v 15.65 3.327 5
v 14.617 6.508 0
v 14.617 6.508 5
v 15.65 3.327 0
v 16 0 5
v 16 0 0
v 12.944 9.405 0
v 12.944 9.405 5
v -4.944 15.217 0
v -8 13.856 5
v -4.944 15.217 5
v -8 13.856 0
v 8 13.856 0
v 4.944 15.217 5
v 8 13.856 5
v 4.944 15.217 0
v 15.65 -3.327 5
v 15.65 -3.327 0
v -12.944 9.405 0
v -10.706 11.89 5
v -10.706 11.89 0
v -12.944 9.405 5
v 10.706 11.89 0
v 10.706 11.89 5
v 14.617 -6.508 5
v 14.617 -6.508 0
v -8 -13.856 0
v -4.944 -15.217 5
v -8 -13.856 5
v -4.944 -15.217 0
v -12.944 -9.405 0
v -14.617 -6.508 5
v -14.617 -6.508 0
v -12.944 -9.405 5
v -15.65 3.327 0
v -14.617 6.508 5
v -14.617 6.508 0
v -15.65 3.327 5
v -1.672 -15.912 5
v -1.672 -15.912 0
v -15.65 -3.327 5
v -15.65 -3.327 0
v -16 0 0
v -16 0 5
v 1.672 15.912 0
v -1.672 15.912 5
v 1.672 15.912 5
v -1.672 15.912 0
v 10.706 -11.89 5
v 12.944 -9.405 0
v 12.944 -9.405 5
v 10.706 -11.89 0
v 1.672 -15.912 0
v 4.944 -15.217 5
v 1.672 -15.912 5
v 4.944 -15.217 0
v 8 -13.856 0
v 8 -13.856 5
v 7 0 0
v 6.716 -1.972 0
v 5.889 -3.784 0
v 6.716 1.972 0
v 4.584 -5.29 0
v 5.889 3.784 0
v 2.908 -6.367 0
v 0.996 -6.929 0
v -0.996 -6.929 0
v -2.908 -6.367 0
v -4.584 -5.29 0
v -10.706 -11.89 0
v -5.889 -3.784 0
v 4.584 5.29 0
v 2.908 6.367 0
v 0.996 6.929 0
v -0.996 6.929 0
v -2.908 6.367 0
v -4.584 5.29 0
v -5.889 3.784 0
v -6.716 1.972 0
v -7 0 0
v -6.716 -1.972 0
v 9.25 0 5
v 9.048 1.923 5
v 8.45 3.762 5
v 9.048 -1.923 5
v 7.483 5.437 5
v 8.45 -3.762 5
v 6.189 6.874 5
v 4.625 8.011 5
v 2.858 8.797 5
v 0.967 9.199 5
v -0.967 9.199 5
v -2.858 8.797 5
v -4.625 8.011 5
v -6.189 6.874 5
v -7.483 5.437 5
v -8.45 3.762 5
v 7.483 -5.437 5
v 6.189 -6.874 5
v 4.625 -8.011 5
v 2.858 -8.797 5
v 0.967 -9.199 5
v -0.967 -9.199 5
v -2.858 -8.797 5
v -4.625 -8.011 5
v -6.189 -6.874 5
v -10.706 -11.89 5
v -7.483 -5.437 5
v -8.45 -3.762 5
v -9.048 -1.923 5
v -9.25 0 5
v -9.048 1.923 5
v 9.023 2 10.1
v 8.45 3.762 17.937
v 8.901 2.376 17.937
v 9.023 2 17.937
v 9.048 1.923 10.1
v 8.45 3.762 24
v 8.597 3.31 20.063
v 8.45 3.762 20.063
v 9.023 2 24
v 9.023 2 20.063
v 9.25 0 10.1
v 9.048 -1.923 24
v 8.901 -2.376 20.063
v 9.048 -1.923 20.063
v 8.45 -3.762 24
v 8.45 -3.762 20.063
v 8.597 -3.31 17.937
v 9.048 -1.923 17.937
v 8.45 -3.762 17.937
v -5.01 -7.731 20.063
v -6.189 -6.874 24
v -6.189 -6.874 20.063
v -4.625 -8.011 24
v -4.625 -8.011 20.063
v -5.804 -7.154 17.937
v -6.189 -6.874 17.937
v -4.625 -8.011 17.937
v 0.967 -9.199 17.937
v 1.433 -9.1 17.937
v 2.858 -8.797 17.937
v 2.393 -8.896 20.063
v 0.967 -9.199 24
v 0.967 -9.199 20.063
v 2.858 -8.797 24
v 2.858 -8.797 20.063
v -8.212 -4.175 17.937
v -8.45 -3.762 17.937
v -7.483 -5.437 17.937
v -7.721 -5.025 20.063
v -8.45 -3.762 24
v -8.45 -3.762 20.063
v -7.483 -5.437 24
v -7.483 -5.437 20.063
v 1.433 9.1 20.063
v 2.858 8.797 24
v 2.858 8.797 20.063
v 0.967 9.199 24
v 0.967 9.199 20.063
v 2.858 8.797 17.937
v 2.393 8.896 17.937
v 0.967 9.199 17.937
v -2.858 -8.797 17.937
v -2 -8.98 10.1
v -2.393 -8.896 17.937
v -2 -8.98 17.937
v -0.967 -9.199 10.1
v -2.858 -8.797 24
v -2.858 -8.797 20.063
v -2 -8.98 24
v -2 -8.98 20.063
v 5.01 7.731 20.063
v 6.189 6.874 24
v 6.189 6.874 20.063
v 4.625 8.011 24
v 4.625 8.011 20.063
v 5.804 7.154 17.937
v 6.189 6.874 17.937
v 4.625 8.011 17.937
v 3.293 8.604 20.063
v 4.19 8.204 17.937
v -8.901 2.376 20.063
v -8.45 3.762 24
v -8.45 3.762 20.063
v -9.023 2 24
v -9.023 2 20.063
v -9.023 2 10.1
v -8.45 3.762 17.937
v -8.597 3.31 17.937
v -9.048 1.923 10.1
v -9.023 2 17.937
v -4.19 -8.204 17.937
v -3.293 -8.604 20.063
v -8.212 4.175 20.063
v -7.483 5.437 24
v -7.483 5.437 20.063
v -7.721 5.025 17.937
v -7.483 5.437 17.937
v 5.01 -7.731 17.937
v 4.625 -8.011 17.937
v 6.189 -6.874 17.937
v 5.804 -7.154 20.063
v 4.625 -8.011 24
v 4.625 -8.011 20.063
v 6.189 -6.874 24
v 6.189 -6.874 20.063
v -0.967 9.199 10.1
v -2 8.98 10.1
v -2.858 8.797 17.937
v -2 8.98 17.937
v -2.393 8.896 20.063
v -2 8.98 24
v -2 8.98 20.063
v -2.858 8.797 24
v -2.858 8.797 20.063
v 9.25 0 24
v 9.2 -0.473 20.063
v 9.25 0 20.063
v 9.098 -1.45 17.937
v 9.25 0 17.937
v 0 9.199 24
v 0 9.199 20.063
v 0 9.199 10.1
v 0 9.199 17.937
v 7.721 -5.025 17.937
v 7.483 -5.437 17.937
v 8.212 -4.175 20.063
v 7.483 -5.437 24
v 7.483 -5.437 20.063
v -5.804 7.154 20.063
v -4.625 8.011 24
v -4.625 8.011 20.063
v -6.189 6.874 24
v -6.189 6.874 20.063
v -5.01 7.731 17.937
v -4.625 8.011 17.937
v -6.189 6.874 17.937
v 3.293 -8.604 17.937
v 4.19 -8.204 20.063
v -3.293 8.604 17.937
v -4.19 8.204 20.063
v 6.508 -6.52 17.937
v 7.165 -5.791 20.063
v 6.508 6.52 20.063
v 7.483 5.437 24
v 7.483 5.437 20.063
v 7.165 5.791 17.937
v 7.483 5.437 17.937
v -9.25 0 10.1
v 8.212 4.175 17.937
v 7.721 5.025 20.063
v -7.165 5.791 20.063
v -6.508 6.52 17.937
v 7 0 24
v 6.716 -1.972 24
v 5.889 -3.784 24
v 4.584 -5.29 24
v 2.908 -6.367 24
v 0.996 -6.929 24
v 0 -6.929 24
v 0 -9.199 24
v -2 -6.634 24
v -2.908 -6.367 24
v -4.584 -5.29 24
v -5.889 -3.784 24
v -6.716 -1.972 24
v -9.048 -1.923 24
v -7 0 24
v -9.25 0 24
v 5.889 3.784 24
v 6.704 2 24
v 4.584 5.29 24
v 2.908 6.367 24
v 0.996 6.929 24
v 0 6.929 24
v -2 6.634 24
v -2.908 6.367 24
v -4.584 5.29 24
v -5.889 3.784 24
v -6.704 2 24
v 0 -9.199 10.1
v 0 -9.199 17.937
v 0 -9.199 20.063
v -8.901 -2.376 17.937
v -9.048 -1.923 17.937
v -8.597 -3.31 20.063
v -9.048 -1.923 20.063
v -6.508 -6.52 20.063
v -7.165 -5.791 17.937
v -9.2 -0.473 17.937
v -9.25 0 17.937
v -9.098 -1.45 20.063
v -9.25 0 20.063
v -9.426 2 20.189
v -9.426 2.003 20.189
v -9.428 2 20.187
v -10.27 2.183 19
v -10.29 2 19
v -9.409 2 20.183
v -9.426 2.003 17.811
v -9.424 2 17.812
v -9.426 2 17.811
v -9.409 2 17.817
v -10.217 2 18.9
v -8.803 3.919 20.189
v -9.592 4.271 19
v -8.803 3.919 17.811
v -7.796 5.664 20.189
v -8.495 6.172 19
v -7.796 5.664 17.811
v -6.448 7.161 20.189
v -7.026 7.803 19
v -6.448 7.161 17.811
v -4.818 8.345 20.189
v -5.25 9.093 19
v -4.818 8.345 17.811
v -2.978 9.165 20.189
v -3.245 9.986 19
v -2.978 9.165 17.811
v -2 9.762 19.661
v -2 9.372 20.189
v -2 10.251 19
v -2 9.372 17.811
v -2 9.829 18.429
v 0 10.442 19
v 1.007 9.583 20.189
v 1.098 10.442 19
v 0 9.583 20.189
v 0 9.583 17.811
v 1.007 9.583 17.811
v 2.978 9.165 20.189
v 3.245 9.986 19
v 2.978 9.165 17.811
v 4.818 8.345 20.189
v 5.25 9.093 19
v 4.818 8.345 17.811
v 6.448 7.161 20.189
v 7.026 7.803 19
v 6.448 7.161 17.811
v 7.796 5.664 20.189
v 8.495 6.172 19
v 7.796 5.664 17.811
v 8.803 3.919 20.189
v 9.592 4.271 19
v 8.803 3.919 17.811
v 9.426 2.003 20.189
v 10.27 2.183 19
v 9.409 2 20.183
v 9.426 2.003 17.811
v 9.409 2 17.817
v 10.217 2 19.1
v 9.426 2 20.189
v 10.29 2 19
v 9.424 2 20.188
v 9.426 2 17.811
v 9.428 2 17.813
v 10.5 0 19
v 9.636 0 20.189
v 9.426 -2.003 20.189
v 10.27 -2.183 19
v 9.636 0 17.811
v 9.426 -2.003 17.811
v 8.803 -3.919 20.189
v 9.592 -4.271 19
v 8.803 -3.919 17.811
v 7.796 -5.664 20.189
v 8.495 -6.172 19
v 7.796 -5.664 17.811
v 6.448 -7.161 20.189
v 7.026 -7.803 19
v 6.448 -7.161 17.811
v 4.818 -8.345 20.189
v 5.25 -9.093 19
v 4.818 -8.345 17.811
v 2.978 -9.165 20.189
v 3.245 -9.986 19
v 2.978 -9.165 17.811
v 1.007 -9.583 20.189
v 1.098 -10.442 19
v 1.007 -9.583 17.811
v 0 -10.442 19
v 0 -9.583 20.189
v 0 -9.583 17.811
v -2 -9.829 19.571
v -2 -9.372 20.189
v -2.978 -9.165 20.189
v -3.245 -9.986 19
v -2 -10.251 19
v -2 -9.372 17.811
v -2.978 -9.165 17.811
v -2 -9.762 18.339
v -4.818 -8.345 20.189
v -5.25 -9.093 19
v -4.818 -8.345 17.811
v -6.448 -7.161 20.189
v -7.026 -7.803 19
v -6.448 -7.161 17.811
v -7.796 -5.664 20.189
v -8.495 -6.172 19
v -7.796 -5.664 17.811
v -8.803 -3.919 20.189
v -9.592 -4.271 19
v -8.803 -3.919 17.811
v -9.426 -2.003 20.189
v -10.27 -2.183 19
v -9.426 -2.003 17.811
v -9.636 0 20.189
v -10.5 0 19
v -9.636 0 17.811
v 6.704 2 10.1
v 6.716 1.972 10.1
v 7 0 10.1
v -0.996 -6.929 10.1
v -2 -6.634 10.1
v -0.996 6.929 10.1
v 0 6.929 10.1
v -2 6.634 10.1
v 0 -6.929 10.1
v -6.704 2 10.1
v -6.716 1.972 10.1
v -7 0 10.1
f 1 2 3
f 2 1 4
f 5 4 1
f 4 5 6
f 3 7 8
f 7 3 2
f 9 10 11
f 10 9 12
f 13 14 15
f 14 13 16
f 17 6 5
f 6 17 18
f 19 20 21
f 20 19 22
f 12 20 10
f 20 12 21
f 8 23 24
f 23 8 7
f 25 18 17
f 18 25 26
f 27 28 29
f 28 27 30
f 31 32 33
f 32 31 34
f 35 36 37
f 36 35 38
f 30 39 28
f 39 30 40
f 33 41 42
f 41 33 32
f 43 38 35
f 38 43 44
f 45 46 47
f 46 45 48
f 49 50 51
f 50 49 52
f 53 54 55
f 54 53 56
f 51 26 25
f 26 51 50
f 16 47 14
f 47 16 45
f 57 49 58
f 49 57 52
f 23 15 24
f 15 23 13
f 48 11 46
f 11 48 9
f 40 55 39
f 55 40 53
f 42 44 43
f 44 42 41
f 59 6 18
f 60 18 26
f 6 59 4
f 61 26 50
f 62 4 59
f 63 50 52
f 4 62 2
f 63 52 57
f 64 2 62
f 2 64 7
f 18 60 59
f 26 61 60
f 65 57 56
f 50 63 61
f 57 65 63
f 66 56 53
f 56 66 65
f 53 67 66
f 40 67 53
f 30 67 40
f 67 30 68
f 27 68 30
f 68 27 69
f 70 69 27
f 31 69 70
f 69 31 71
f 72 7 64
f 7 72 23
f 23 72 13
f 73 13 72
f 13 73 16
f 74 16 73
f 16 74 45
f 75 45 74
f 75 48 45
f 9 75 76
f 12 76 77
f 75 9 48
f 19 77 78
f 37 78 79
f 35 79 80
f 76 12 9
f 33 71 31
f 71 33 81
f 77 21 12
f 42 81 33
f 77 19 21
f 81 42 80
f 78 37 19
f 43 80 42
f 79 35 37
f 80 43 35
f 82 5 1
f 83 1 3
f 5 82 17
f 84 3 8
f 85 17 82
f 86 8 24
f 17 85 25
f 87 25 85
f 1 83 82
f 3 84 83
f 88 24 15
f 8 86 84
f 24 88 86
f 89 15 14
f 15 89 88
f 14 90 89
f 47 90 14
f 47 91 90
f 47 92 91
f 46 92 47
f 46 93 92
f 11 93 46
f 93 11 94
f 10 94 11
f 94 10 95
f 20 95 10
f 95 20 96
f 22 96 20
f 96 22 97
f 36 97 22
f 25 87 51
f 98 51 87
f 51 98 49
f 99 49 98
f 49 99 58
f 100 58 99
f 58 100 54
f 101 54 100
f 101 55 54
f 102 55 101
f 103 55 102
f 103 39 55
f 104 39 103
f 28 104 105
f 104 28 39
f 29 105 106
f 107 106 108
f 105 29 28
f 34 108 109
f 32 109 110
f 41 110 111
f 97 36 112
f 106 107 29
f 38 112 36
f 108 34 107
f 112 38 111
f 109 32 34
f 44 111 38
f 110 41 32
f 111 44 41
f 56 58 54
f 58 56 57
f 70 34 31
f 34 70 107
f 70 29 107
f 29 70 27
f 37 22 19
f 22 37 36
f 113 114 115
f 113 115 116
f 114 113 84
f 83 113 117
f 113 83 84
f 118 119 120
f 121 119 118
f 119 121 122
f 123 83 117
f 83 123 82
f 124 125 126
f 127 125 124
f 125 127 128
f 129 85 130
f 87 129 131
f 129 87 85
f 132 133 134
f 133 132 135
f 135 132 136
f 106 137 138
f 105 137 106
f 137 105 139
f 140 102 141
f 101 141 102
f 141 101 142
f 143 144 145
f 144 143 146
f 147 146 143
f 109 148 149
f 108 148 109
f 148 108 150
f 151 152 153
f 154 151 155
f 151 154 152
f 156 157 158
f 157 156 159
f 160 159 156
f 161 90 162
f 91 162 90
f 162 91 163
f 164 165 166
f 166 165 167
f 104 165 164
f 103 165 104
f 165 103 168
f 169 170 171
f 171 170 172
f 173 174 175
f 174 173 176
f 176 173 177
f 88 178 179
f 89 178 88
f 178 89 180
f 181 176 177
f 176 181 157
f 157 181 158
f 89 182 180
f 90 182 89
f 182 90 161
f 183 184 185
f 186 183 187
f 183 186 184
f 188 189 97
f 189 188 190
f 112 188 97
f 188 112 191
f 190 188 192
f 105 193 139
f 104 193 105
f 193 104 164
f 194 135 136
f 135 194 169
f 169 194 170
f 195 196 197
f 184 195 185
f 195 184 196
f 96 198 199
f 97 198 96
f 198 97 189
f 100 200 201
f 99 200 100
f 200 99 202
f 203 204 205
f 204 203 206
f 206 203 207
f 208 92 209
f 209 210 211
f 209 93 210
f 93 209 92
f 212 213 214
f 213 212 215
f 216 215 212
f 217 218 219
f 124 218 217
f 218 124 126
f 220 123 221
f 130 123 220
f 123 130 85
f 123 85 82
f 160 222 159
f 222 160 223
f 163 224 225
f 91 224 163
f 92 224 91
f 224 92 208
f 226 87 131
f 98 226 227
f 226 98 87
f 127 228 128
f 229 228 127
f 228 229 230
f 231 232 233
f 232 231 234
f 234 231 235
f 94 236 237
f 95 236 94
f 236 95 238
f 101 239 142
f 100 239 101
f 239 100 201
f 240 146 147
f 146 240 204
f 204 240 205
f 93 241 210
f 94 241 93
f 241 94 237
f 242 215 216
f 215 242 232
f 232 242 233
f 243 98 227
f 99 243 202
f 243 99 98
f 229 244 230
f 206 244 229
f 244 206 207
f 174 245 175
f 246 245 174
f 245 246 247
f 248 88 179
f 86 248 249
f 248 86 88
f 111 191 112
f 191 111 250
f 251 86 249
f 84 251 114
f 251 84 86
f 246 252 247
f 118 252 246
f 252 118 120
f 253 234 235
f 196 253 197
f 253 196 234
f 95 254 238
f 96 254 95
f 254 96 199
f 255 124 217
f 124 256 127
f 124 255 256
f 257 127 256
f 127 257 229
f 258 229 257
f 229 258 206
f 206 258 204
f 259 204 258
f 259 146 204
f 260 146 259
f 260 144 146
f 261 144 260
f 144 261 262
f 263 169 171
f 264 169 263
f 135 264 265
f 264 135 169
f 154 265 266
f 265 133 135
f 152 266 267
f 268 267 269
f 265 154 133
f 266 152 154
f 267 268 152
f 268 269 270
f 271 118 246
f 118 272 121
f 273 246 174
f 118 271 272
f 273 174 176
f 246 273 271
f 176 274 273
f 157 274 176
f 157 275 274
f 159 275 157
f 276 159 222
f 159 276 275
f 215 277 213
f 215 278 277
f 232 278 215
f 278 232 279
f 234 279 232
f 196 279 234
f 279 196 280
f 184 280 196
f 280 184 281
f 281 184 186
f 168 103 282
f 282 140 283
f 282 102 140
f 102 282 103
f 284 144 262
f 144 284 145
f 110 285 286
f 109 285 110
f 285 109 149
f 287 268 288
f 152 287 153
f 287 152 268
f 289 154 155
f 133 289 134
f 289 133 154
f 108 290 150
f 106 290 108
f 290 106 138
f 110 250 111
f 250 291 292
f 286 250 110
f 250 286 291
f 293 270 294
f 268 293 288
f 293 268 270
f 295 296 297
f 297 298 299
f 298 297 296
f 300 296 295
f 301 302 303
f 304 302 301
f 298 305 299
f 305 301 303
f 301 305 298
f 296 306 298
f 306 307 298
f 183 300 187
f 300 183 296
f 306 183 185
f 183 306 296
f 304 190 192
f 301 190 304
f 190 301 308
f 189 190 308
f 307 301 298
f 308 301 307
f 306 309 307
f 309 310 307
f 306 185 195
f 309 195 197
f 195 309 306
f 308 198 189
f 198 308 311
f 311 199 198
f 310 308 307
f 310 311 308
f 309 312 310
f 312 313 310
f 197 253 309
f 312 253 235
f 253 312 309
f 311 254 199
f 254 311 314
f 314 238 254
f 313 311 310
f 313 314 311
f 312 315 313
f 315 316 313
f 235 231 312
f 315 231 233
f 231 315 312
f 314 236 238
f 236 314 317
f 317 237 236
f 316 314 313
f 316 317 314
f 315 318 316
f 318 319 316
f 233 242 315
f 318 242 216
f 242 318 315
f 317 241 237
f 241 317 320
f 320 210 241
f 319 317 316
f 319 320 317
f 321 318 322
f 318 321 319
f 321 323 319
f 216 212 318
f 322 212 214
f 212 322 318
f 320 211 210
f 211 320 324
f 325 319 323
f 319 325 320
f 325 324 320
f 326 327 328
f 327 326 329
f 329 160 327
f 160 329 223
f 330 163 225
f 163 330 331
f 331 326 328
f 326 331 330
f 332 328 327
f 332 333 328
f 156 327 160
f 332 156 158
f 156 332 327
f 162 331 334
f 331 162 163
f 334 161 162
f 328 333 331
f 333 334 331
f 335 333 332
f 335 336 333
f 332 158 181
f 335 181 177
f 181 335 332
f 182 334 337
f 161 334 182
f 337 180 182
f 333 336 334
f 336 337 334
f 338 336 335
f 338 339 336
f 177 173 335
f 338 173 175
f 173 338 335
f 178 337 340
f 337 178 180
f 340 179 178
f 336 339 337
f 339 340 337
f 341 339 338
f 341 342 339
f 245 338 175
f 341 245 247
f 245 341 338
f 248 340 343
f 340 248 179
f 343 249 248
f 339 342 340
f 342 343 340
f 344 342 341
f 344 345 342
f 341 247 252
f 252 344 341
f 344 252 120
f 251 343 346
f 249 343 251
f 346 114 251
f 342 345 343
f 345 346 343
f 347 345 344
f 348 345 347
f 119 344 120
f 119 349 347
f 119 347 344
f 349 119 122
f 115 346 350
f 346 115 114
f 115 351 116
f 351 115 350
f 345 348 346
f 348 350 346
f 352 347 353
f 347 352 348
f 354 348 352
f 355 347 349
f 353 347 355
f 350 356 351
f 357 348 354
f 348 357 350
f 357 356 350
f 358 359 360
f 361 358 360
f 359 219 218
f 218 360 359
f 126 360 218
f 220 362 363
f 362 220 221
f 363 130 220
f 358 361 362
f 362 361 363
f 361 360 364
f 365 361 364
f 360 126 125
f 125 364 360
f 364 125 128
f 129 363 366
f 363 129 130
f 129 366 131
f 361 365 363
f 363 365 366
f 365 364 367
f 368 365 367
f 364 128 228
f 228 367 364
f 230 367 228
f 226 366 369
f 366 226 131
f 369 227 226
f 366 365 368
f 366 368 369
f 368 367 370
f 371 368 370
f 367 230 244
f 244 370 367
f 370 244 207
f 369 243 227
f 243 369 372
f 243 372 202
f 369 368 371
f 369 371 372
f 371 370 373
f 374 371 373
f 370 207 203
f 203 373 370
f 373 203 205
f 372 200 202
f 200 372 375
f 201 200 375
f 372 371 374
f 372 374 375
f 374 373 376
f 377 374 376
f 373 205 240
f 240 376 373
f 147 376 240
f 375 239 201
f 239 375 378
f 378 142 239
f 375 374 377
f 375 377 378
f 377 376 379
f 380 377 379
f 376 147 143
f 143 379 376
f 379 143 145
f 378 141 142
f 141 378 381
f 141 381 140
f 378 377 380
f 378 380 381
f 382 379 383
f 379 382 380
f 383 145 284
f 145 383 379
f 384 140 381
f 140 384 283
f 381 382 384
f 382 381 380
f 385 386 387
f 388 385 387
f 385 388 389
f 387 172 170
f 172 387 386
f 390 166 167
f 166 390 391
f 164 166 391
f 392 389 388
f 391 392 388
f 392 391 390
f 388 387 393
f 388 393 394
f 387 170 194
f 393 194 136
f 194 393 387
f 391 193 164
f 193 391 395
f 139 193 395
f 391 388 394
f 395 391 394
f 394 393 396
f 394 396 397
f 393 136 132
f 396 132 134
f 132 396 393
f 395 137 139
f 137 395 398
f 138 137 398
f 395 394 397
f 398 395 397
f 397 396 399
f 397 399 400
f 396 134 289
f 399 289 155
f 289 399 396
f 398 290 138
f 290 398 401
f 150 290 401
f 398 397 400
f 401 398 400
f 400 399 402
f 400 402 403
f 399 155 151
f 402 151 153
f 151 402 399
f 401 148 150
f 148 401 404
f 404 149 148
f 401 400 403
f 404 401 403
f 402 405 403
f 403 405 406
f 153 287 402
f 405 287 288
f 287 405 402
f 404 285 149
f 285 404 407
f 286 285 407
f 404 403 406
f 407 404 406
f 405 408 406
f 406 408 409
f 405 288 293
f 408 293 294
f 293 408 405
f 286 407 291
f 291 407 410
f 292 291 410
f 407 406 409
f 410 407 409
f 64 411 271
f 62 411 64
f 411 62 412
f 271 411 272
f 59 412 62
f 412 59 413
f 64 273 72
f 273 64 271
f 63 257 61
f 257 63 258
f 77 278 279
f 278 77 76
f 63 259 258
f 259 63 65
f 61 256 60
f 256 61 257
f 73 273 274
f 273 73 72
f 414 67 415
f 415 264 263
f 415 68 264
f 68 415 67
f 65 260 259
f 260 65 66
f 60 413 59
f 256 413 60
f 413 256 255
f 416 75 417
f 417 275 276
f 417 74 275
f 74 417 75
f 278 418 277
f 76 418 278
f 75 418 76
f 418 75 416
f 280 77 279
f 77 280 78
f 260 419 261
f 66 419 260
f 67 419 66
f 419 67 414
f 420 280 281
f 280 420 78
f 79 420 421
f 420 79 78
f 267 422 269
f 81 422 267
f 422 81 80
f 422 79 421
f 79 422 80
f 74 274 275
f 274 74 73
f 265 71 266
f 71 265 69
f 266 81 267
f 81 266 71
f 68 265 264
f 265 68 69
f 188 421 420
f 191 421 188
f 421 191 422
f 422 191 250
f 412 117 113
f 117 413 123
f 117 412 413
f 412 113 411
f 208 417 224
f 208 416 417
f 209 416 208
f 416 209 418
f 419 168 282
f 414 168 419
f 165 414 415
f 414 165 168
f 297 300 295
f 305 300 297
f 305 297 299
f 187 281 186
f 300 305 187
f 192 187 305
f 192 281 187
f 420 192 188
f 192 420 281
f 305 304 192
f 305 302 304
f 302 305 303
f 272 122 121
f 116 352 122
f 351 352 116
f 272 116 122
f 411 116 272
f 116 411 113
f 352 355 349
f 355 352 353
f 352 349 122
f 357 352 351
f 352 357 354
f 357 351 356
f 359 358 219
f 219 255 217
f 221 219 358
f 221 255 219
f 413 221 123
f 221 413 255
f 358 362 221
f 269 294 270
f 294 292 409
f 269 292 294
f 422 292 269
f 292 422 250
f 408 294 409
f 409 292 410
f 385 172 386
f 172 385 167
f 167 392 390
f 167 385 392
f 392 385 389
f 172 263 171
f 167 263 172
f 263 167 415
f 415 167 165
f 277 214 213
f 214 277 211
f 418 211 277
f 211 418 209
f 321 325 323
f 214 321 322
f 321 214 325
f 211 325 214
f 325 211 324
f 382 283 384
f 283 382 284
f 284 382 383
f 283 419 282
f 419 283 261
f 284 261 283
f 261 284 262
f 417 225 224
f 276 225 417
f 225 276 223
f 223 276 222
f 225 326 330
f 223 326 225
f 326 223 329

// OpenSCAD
epsilon = 0.1;

module circular_clip_base(
    base_radius=16,
    base_thickness=5,
    wall_height=19,
    outer_radius=9.25,
    inner_radius = 7.5,
    clip_radius = 1.25
    ) {

        // Base shape
        difference() {
            union() {
                cylinder(base_thickness, base_radius, base_radius);
                translate([0, 0, base_thickness]) {
                    cylinder(wall_height, outer_radius, outer_radius);
                }
                // Clippy bits
                translate([0, 0, wall_height]) {
                    ring(outer_radius, outer_radius + clip_radius);
                }
            }
            translate([0, 0, -epsilon]) {
                cylinder(base_thickness + wall_height + 2 * epsilon, inner_radius, inner_radius);
            }
        }
}

module circular_clip_cut(
        base_radius=16,
        base_thickness=5,
        wall_height=19,
        outer_radius=9.25,
        inner_radius = 7.5,
        cut_width=3,
        cut_interval=60,
        clip_radius=1.25,
        non_cut_height=5
    ) {
        // Cut out slots to create clips that have flexibility
        difference() {
            circular_clip_base(
                base_radius,
                base_thickness,
                wall_height,
                outer_radius,
                inner_radius,
                clip_radius
            );
            union() {
                for (i = [0:cut_interval:180 - cut_interval]) {
                    rotate([0, 0, i]){
                        translate([-(outer_radius + clip_radius), 0, base_thickness + epsilon + non_cut_height]) {
                            cube([(outer_radius + clip_radius) * 2, cut_width, wall_height + epsilon]);
                        }
                    }
                }
            }
        }
}

module ring(inner_radius, outer_radius) {
    rotate_extrude(angle=360) {
        translate([inner_radius, 0]) {
            circle(outer_radius - inner_radius);
        }
    }
}

module circular_clip(
        base_radius=16,
        base_thickness=5,
        wall_height=19,
        outer_radius=9.25,
        inner_radius = 7.5,
        cut_width=3,
        cut_interval=60,
        clip_radius=1.25,
        non_cut_height=5
    ) {
        circular_clip_cut(
            base_radius,
            base_thickness,
            wall_height,
            outer_radius,
            inner_radius,
            cut_width,
            cut_interval,
            clip_radius,
            non_cut_height
        );
}

circular_clip(cut_width=2, cut_interval=90, inner_radius=7);
